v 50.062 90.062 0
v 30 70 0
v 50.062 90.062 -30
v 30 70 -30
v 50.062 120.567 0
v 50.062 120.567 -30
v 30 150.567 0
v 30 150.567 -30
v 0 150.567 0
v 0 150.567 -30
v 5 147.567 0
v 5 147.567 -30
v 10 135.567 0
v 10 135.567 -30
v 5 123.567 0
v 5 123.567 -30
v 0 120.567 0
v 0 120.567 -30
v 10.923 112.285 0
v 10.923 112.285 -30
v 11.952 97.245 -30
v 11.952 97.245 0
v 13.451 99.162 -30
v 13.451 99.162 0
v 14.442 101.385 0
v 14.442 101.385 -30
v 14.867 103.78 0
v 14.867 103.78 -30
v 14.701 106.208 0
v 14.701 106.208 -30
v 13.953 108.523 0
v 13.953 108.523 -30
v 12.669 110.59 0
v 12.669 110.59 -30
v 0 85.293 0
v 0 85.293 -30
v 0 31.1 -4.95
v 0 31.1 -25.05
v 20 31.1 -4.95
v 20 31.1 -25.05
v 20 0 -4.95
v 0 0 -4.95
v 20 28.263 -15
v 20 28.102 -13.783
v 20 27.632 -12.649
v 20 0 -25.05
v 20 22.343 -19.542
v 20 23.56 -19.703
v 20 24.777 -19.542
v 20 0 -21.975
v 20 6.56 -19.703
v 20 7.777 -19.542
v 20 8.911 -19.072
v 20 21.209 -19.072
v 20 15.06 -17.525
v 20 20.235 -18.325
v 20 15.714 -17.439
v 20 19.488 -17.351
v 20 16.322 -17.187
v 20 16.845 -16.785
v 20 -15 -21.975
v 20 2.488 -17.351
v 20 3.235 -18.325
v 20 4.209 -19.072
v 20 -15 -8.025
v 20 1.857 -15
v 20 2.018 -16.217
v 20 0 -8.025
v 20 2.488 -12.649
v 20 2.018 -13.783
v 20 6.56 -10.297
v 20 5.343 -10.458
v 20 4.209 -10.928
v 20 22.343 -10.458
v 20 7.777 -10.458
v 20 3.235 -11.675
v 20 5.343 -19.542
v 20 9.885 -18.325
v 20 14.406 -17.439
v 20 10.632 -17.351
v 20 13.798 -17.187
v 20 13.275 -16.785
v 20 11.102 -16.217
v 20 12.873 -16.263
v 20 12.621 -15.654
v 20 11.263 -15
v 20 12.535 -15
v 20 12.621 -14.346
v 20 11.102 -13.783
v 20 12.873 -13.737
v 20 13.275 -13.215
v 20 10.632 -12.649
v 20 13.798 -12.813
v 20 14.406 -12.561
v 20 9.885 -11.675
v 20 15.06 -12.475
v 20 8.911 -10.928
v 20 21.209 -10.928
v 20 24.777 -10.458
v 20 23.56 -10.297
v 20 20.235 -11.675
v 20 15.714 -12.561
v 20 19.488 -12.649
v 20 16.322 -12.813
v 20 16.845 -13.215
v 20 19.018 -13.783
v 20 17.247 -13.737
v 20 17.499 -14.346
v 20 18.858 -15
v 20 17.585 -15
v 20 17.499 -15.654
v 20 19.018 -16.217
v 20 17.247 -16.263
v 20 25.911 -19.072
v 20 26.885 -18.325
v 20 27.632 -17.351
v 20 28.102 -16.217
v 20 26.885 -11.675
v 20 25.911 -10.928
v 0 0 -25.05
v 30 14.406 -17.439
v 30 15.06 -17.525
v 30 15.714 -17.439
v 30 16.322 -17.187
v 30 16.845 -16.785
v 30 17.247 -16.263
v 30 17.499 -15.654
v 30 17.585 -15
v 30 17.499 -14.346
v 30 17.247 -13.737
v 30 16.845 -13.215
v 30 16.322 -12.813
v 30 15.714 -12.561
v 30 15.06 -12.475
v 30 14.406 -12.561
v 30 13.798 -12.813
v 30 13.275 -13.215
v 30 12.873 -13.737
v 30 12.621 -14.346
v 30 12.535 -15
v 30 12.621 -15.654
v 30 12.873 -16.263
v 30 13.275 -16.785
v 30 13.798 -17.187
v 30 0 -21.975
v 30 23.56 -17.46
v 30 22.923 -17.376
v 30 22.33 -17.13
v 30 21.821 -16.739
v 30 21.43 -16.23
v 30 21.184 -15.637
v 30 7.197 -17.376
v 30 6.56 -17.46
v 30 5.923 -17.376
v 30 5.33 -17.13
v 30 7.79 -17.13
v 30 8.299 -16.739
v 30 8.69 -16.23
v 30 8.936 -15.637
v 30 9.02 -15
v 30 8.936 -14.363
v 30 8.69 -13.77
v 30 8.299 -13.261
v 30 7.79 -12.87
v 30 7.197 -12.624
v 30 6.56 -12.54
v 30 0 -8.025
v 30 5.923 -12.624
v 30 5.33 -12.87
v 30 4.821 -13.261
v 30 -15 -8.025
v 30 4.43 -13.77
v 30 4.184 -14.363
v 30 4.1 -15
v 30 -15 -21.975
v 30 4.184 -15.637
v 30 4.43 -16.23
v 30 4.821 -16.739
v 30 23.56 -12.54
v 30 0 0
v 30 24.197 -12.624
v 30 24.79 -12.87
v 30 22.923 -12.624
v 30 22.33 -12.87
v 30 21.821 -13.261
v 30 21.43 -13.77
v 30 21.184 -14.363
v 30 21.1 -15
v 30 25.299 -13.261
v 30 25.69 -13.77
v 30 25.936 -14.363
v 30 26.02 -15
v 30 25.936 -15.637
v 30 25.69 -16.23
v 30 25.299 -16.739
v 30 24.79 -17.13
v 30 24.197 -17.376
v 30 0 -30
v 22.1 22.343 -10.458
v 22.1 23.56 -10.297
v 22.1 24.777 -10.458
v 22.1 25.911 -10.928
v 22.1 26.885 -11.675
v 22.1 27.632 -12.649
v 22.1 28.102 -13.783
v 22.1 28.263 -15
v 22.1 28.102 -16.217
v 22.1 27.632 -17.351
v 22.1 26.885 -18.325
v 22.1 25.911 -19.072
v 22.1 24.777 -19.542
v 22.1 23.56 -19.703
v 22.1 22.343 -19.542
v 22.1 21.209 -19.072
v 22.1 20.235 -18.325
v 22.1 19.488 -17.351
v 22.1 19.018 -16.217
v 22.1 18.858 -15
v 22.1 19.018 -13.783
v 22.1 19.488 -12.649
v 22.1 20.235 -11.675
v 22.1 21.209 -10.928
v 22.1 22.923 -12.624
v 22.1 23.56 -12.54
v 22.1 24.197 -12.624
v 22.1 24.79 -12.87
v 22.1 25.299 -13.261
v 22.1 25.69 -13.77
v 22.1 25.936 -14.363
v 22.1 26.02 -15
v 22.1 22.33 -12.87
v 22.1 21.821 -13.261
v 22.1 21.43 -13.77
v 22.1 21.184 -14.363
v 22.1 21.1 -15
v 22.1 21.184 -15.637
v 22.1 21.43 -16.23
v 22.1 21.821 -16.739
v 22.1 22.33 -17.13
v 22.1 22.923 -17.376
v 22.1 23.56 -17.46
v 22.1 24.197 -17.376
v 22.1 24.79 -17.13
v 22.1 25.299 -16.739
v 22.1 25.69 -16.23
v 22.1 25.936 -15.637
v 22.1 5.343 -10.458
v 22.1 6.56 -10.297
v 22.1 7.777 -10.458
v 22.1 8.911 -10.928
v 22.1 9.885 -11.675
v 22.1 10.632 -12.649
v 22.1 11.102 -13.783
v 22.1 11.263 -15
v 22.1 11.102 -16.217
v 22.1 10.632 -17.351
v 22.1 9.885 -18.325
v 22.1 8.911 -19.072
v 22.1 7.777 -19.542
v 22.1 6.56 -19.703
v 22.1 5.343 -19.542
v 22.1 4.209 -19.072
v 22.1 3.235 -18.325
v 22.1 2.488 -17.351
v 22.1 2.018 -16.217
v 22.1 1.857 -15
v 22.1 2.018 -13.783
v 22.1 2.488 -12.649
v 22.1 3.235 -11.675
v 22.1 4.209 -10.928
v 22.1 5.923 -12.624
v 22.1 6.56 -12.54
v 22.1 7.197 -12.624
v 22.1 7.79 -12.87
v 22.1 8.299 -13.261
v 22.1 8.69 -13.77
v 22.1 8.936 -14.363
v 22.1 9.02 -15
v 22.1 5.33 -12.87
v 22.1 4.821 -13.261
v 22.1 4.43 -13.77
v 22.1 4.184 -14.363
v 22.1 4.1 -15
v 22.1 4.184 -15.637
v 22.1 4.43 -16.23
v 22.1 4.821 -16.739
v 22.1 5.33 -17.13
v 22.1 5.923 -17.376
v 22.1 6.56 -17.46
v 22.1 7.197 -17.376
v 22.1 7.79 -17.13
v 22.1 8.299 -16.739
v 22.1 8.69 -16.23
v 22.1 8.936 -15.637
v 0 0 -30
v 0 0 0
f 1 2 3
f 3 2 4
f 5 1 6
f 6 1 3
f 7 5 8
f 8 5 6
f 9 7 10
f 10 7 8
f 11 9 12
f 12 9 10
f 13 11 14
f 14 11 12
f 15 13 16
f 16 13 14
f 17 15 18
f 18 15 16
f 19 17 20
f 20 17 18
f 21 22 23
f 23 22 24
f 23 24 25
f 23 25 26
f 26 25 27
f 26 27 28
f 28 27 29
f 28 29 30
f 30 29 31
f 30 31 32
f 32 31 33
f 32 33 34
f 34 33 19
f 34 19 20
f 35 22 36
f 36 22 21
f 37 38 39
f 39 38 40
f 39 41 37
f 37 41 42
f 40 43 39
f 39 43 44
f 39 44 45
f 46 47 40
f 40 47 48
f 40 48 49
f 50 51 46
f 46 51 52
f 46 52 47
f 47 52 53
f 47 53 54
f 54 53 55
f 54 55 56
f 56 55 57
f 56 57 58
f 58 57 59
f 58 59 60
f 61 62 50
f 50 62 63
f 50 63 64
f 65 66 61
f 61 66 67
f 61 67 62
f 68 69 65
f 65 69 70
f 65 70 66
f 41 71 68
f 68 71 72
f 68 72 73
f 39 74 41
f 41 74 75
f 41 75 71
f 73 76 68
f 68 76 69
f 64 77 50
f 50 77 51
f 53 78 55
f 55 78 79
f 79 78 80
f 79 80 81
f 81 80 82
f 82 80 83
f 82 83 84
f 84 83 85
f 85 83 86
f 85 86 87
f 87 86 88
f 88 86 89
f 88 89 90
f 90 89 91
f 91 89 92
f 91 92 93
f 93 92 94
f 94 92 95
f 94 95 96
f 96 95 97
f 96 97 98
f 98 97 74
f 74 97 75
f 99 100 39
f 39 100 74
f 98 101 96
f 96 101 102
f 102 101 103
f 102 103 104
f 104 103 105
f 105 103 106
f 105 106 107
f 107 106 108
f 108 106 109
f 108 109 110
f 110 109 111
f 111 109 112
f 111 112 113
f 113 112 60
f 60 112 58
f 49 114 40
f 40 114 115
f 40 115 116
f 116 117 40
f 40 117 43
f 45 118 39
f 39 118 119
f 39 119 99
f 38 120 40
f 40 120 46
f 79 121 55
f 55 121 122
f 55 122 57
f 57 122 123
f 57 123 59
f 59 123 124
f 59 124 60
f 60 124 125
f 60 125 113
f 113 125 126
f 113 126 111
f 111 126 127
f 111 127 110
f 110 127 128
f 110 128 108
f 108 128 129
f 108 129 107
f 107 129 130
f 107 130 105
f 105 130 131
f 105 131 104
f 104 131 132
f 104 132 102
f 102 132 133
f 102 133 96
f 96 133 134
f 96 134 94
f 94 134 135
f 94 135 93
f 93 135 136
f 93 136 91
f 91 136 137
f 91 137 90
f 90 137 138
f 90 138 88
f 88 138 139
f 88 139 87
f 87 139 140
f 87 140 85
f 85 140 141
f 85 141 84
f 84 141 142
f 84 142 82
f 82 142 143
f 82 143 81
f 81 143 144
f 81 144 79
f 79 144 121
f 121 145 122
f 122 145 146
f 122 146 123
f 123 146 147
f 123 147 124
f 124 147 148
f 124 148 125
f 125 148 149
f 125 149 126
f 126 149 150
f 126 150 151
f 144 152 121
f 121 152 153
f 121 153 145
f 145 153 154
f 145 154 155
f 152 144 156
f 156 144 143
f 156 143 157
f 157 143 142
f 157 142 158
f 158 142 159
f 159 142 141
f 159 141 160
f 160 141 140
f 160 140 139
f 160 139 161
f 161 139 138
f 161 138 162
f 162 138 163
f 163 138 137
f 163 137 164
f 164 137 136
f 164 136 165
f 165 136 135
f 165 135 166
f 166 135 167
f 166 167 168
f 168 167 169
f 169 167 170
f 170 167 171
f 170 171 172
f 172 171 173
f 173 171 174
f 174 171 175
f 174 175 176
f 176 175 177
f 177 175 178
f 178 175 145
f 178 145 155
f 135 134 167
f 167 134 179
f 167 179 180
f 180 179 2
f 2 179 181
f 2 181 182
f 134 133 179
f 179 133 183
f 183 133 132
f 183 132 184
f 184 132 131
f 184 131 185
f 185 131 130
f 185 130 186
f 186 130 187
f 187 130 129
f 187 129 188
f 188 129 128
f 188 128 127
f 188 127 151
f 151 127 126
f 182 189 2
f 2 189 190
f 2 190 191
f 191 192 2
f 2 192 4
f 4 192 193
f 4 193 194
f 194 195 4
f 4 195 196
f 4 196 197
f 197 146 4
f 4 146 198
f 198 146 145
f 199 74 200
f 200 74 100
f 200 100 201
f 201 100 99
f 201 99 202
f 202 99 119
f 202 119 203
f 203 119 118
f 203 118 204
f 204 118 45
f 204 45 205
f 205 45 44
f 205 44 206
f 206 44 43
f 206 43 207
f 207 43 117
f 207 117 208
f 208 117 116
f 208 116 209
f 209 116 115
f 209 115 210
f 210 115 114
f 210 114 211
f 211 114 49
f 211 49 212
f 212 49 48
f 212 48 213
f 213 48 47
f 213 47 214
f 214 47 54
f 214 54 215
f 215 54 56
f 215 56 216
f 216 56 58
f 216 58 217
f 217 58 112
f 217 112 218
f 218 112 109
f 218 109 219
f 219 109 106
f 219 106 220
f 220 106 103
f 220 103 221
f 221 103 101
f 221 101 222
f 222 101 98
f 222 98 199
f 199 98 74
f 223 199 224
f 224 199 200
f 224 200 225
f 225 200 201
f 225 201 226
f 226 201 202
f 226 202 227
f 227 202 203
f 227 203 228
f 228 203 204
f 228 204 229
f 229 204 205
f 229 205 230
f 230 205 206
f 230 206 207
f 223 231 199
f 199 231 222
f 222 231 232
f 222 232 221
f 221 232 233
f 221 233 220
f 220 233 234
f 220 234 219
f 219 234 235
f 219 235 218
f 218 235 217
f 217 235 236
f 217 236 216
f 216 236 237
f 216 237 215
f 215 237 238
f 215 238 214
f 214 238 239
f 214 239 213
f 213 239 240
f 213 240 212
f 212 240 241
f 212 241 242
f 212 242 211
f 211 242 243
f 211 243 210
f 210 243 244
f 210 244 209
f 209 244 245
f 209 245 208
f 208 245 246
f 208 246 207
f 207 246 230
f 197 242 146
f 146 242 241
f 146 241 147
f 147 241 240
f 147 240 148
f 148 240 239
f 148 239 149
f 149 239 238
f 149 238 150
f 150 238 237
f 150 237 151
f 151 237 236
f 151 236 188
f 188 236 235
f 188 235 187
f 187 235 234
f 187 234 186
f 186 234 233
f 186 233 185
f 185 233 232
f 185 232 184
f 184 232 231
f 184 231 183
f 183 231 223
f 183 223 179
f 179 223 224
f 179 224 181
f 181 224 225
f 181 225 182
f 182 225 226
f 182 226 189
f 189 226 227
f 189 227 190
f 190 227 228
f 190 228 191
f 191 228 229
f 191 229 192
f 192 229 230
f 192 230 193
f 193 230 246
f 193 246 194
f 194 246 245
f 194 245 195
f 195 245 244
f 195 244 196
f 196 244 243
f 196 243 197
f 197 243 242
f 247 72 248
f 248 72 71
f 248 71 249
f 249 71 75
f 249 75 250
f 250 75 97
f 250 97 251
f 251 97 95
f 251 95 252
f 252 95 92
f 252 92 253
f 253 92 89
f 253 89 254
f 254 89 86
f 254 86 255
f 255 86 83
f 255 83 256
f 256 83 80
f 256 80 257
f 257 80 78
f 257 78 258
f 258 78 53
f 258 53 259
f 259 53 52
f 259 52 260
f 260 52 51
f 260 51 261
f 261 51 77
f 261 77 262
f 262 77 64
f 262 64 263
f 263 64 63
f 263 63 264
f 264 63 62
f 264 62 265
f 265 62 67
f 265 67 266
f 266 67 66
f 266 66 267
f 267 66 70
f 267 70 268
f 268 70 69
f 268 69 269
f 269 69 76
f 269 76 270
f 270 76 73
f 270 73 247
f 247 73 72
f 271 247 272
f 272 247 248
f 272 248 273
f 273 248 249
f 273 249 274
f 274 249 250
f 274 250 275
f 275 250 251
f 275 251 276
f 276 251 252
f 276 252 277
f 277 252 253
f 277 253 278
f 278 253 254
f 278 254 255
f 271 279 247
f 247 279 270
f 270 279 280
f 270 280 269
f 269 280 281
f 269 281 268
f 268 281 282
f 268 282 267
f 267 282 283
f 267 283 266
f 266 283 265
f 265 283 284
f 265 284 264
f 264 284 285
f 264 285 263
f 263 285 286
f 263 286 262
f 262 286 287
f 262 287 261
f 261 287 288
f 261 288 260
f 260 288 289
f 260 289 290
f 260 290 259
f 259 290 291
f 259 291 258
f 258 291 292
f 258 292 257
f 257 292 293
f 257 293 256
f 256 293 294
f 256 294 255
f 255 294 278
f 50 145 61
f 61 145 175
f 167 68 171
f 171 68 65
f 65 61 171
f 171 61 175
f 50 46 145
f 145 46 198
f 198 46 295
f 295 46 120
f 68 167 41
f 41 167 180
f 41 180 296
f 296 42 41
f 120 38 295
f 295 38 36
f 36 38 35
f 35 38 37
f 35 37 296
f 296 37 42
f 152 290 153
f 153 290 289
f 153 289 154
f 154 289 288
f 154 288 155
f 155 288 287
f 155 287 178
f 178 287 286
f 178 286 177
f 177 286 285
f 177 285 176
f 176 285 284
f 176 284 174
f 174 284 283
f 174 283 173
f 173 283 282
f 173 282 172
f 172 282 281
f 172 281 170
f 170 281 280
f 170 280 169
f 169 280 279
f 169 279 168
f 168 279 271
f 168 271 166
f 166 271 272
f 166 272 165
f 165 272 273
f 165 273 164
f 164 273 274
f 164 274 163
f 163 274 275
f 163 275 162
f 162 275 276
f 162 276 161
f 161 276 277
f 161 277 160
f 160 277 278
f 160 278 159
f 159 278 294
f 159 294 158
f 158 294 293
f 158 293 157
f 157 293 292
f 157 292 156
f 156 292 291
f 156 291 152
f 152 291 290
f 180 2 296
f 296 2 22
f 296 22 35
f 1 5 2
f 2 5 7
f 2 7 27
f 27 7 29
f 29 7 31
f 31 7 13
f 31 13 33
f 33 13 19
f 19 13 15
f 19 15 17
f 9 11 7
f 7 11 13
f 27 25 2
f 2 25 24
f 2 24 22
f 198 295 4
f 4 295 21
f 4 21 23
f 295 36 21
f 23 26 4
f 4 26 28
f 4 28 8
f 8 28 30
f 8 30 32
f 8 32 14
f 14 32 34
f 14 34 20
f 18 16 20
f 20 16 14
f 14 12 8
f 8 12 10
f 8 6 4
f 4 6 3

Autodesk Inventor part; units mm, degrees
ref_plane "YZ Plane" through (0, 0, 0) normal (1, 0, 0) x (0, 1, 0)
ref_plane "XZ Plane" through (0, 0, 0) normal (0, 1, 0) x (-1, 0, 0)
ref_plane "XY Plane" through (0, 0, 0) normal (0, 0, 1) x (1, 0, 0)
sketch "Sketch1" plane through (0, 0, 0) normal (0, 0, 1) x (1, 0, 0)
  line L0 (0, 0) -> (25, 0)
  line L1 (25, 0) -> (25, 40)
  line L2 (25, 40) -> (0, 40)
  line L3 (0, 40) -> (0, 0)
  dimension "d1" = 25
  dimension "d2" = 40
  dimension "d3" = 25
extrude "Extrusion1" add sketch "Sketch1" against normal blind 30
sketch "Sketch2" plane through (25, 0, 0) normal (1, 0, 0) x (0, 0, -1)
  line L0 (0, 0) -> (30, 0) projected
  circle A0 centre (15, 6.56) radius 2.46
extrude "Extrusion2" cut sketch "Sketch2" against normal blind 30
sketch "Sketch3" plane through (0, 0, 0) normal (-1, 0, 0) x (0, 0, 1)
  line L0 (0, 0) -> (-30, 0) projected
  line L1 (-25.05, 0) -> (-4.95, 0)
  line L2 (-4.95, 0) -> (-4.95, 33.12)
  line L3 (-4.95, 33.12) -> (-25.05, 33.12)
  line L4 (-25.05, 33.12) -> (-25.05, 0)
  dimension "d11" = 20.1
extrude "Extrusion3" cut sketch "Sketch3" against normal blind 20
sketch "Sketch4" plane through (0, 0, 0) normal (0, -1, 0) x (1, 0, 0)
  line L0 (20, -4.95) -> (20, -25.05) projected
  line L1 (20, -15) -> (25, -15)
  line L2 (25, 0) -> (25, -30) projected
  line L3 (20, -8.025) -> (25, -8.025)
  line L4 (25, -8.025) -> (25, -21.975)
  line L5 (25, -21.975) -> (20, -21.975)
  line L6 (20, -21.975) -> (20, -8.025)
  line L7 (20, -8.025) -> (25, -21.975) construction
  line L8 (25, -8.025) -> (20, -21.975) construction
  line L9 (25, -12.54) -> (25, -17.46) projected
  point P0 (0, 0)
  point P1 (22.5, -15)
  dimension "d14" = 13.95
extrude "Extrusion4" add sketch "Sketch4" along normal blind 15
sketch "Sketch5" plane through (20, 0, 0) normal (-1, 0, 0) x (0, 0, 1)
  circle A0 centre (-15, 6.56) radius 2.46 projected
  circle A1 centre (-15, 6.56) radius 4.7025
  circle A2 centre (-15, 6.56) radius 2.46 projected
  circle A3 centre (-15, 6.56) radius 2.46
  point P0 (0, 0)
  dimension "d17" = 9.405
extrude "Extrusion5" cut sketch "Sketch5" against normal blind 2.1
sketch "Sketch6" plane through (25, 0, 0) normal (1, 0, 0) x (0, 0, -1)
  circle A0 centre (15, 6.56) radius 4.7025 projected
  line L0 (15, 6.56) -> (15, 23.56)
  circle A1 centre (15, 23.56) radius 2.46
  point P0 (0, 0)
  dimension "d20" = 17
  dimension "d21" = 4.92
extrude "Extrusion6" cut sketch "Sketch6" against normal blind 10 contours A1
sketch "Sketch7" plane through (20, 0, 0) normal (-1, 0, 0) x (0, 0, 1)
  circle A0 centre (-15, 23.56) radius 2.46 projected
  circle A1 centre (-15, 23.56) radius 4.7025
  point P0 (0, 0)
  dimension "d24" = 9.405
extrude "Extrusion7" cut sketch "Sketch7" against normal blind 2.1
sketch "Sketch9" plane through (25, 0, 0) normal (1, 0, 0) x (0, 0, -1)
  circle A0 centre (15, 6.56) radius 2.46 projected
  circle A1 centre (15, 6.56) radius 2.46
  circle A2 centre (15, 23.56) radius 2.46 projected
  circle A3 centre (15, 23.56) radius 2.46
  line L0 (30, 40) -> (30, 0) projected
  line L1 (30, 0) -> (30, 40)
  line L2 (30, 40) -> (0, 40)
  line L3 (0, 40) -> (0, 0)
  line L4 (0, 0) -> (8.025, 0) projected
  line L5 (21.975, 0) -> (21.975, -15)
  line L6 (21.975, -15) -> (8.025, -15)
  line L7 (8.025, -15) -> (8.025, 0)
  line L8 (0, 0) -> (8.025, 0)
  line L9 (21.975, 0) -> (30, 0)
extrude "Extrusion8" add sketch "Sketch9" along normal blind 5
sketch "Sketch10" plane through (0, 40, 0) normal (0, 1, 0) x (1, 0, 0)
  line L0 (0, 30) -> (30, 30) projected
  line L1 (30, 0) -> (0, 0) projected
  line L2 (0, 30) -> (30, 30)
  line L3 (30, 30) -> (30, 0)
  line L4 (30, 0) -> (0, 0)
  line L5 (0, 0) -> (0, 30)
extrude "Extrusion9" add sketch "Sketch10" along normal blind 30
sketch "Sketch12" plane through (30, 0, 0) normal (1, 0, 0) x (0, 0, -1)
  circle A0 centre (15, 6.56) radius 2.46 projected
  line L0 (15, 6.56) -> (15, 15.06)
  circle A1 centre (15, 15.06) radius 2.525
  point P0 (0, 0)
  dimension "d31" = 8.5
  dimension "d33" = 5.05
extrude "Extrusion10" cut sketch "Sketch12" against normal blind 30 contours A1
sketch "Sketch15" plane through (0, 0, -25.05) normal (-1, 0, 0) x (0, 0, 1)
  line L0 (0, 33.12) -> (20.1, 33.12) projected
  line L1 (20.1, 33.12) -> (20.1, 0) projected
  line L2 (0, 33.12) -> (20.1, 33.12)
  line L3 (20.1, 33.12) -> (20.1, 31.1)
  line L4 (20.1, 31.1) -> (0, 31.1)
  line L5 (0, 31.1) -> (0, 33.12)
  point P0 (25.05, 0)
  dimension "d57" = 2.02
extrude "Extrusion13" add sketch "Sketch15" against normal blind 20
sketch "Sketch17" plane through (0, 0, 0) normal (0, 0, 1) x (1, 0, 0)
  line L0 (0, 70) -> (30, 70) projected
  line L1 (30, 70) -> (50.0622, 90.0622)
  line L2 (30, 70) -> (80, 70) construction
  line L3 (11.9522, 97.2454) -> (0, 85.2932)
  line L4 (0, 70) -> (0, 85.2932)
  line L5 (0, 70) -> (0, 0) projected
  line L6 (0, 70) -> (30, 70)
  line L7 (10.923, 112.2849) -> (0, 120.567)
  line L8 (50.0622, 105.3553) -> (50.0622, 120.567)
  line L9 (50.0622, 105.3553) -> (50.0622, 90.0622)
  arc A0 (11.9522, 97.2454) -> (10.923, 112.2849) centre (4.8811, 104.3165) ccw
  line L10 (0, 150.567) -> (30, 150.567)
  line L11 (30, 150.567) -> (50.0622, 120.567)
  line L12 (5, 147.567) -> (0, 150.567)
  line L13 (5, 123.567) -> (0, 120.567)
  line L14 (5, 123.567) -> (10, 135.567)
  line L15 (10, 135.567) -> (5, 147.567)
  dimension "d61" = 45
  dimension "d62" = 32.0271
  dimension "d72" = 10
extrude "Extrusion14" add sketch "Sketch17" against normal blind 30
properties part number "rec_c_24mm_x_30mm"
